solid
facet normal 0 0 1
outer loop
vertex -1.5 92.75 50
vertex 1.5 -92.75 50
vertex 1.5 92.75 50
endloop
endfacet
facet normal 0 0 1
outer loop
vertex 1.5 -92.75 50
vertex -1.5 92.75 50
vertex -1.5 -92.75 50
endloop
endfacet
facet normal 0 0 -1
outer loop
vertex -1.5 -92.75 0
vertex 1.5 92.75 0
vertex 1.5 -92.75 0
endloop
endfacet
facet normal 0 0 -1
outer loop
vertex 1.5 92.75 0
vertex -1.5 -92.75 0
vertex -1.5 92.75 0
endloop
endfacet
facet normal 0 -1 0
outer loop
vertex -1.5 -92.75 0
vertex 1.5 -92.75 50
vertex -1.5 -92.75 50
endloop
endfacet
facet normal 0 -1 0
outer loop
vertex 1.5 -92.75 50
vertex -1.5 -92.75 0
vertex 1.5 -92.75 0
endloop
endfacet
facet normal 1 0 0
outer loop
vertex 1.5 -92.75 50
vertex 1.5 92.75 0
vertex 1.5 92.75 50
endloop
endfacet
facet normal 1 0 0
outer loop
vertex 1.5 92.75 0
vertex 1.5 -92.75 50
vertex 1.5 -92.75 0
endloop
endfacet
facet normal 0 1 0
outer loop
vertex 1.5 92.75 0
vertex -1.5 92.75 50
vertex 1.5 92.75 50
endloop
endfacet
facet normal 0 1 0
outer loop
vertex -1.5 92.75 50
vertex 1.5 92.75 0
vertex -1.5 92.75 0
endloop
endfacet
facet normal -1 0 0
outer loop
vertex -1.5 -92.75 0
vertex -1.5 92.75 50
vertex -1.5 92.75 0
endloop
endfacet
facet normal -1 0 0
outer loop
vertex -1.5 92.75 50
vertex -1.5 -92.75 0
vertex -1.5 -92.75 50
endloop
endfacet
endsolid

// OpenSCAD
// file: Inlet.scad
$fn = 100;
tiny = 0.01;


/******************************************************
 * dx,dy: Maße, wie bei 'Boden' angegeben.
 *****************************************************/
module inlet_top_down(dx,dy) {
  h1 = 3;  
  dx1 = 5.9;
  dx2 = 4.0; // vier mal Fase an Ecken

  difference() {
     translate([0,0,h1/2]) cube([dx-2*dx1,dy-2*dx1,h1], true); 
     translate([+dx/2-dx1,+dy/2-dx1,h1/2-tiny]) rotate([0,0,45]) cube([dx2,dx2,h1+3*tiny], true);
     translate([+dx/2-dx1,-dy/2+dx1,h1/2-tiny]) rotate([0,0,45]) cube([dx2,dx2,h1+3*tiny], true);
     translate([-dx/2+dx1,+dy/2-dx1,h1/2-tiny]) rotate([0,0,45]) cube([dx2,dx2,h1+3*tiny], true);
     translate([-dx/2+dx1,-dy/2+dx1,h1/2-tiny]) rotate([0,0,45]) cube([dx2,dx2,h1+3*tiny], true);
     }
}


/******************************************************
 * dy: Maß, wie bei 'Boden' angegeben.
 * h:  Maß, wie bei 'Kante' angegeben.
 *****************************************************/
module inlet_front_back(h,dy) {
  h1 = 3;
  dy1 = 12+12.5;
  translate([0,0,h/2]) cube([h1,dy-dy1,h], true);
}


/******************************************************
 * dx: Maß, wie bei 'Boden' angegeben.
 * h:  Maß, wie bei 'Kante' angegeben.
 *****************************************************/
module inlet_left_right(h,dx) {
  h1 = 3;
  dx1 = 12+12.5;
  translate([0,0,h/2]) cube([dx-dx1,h1,h], true);
}
// main file
$fn = 100;

use <Inlet.scad>


inlet_front_back(50,210);
